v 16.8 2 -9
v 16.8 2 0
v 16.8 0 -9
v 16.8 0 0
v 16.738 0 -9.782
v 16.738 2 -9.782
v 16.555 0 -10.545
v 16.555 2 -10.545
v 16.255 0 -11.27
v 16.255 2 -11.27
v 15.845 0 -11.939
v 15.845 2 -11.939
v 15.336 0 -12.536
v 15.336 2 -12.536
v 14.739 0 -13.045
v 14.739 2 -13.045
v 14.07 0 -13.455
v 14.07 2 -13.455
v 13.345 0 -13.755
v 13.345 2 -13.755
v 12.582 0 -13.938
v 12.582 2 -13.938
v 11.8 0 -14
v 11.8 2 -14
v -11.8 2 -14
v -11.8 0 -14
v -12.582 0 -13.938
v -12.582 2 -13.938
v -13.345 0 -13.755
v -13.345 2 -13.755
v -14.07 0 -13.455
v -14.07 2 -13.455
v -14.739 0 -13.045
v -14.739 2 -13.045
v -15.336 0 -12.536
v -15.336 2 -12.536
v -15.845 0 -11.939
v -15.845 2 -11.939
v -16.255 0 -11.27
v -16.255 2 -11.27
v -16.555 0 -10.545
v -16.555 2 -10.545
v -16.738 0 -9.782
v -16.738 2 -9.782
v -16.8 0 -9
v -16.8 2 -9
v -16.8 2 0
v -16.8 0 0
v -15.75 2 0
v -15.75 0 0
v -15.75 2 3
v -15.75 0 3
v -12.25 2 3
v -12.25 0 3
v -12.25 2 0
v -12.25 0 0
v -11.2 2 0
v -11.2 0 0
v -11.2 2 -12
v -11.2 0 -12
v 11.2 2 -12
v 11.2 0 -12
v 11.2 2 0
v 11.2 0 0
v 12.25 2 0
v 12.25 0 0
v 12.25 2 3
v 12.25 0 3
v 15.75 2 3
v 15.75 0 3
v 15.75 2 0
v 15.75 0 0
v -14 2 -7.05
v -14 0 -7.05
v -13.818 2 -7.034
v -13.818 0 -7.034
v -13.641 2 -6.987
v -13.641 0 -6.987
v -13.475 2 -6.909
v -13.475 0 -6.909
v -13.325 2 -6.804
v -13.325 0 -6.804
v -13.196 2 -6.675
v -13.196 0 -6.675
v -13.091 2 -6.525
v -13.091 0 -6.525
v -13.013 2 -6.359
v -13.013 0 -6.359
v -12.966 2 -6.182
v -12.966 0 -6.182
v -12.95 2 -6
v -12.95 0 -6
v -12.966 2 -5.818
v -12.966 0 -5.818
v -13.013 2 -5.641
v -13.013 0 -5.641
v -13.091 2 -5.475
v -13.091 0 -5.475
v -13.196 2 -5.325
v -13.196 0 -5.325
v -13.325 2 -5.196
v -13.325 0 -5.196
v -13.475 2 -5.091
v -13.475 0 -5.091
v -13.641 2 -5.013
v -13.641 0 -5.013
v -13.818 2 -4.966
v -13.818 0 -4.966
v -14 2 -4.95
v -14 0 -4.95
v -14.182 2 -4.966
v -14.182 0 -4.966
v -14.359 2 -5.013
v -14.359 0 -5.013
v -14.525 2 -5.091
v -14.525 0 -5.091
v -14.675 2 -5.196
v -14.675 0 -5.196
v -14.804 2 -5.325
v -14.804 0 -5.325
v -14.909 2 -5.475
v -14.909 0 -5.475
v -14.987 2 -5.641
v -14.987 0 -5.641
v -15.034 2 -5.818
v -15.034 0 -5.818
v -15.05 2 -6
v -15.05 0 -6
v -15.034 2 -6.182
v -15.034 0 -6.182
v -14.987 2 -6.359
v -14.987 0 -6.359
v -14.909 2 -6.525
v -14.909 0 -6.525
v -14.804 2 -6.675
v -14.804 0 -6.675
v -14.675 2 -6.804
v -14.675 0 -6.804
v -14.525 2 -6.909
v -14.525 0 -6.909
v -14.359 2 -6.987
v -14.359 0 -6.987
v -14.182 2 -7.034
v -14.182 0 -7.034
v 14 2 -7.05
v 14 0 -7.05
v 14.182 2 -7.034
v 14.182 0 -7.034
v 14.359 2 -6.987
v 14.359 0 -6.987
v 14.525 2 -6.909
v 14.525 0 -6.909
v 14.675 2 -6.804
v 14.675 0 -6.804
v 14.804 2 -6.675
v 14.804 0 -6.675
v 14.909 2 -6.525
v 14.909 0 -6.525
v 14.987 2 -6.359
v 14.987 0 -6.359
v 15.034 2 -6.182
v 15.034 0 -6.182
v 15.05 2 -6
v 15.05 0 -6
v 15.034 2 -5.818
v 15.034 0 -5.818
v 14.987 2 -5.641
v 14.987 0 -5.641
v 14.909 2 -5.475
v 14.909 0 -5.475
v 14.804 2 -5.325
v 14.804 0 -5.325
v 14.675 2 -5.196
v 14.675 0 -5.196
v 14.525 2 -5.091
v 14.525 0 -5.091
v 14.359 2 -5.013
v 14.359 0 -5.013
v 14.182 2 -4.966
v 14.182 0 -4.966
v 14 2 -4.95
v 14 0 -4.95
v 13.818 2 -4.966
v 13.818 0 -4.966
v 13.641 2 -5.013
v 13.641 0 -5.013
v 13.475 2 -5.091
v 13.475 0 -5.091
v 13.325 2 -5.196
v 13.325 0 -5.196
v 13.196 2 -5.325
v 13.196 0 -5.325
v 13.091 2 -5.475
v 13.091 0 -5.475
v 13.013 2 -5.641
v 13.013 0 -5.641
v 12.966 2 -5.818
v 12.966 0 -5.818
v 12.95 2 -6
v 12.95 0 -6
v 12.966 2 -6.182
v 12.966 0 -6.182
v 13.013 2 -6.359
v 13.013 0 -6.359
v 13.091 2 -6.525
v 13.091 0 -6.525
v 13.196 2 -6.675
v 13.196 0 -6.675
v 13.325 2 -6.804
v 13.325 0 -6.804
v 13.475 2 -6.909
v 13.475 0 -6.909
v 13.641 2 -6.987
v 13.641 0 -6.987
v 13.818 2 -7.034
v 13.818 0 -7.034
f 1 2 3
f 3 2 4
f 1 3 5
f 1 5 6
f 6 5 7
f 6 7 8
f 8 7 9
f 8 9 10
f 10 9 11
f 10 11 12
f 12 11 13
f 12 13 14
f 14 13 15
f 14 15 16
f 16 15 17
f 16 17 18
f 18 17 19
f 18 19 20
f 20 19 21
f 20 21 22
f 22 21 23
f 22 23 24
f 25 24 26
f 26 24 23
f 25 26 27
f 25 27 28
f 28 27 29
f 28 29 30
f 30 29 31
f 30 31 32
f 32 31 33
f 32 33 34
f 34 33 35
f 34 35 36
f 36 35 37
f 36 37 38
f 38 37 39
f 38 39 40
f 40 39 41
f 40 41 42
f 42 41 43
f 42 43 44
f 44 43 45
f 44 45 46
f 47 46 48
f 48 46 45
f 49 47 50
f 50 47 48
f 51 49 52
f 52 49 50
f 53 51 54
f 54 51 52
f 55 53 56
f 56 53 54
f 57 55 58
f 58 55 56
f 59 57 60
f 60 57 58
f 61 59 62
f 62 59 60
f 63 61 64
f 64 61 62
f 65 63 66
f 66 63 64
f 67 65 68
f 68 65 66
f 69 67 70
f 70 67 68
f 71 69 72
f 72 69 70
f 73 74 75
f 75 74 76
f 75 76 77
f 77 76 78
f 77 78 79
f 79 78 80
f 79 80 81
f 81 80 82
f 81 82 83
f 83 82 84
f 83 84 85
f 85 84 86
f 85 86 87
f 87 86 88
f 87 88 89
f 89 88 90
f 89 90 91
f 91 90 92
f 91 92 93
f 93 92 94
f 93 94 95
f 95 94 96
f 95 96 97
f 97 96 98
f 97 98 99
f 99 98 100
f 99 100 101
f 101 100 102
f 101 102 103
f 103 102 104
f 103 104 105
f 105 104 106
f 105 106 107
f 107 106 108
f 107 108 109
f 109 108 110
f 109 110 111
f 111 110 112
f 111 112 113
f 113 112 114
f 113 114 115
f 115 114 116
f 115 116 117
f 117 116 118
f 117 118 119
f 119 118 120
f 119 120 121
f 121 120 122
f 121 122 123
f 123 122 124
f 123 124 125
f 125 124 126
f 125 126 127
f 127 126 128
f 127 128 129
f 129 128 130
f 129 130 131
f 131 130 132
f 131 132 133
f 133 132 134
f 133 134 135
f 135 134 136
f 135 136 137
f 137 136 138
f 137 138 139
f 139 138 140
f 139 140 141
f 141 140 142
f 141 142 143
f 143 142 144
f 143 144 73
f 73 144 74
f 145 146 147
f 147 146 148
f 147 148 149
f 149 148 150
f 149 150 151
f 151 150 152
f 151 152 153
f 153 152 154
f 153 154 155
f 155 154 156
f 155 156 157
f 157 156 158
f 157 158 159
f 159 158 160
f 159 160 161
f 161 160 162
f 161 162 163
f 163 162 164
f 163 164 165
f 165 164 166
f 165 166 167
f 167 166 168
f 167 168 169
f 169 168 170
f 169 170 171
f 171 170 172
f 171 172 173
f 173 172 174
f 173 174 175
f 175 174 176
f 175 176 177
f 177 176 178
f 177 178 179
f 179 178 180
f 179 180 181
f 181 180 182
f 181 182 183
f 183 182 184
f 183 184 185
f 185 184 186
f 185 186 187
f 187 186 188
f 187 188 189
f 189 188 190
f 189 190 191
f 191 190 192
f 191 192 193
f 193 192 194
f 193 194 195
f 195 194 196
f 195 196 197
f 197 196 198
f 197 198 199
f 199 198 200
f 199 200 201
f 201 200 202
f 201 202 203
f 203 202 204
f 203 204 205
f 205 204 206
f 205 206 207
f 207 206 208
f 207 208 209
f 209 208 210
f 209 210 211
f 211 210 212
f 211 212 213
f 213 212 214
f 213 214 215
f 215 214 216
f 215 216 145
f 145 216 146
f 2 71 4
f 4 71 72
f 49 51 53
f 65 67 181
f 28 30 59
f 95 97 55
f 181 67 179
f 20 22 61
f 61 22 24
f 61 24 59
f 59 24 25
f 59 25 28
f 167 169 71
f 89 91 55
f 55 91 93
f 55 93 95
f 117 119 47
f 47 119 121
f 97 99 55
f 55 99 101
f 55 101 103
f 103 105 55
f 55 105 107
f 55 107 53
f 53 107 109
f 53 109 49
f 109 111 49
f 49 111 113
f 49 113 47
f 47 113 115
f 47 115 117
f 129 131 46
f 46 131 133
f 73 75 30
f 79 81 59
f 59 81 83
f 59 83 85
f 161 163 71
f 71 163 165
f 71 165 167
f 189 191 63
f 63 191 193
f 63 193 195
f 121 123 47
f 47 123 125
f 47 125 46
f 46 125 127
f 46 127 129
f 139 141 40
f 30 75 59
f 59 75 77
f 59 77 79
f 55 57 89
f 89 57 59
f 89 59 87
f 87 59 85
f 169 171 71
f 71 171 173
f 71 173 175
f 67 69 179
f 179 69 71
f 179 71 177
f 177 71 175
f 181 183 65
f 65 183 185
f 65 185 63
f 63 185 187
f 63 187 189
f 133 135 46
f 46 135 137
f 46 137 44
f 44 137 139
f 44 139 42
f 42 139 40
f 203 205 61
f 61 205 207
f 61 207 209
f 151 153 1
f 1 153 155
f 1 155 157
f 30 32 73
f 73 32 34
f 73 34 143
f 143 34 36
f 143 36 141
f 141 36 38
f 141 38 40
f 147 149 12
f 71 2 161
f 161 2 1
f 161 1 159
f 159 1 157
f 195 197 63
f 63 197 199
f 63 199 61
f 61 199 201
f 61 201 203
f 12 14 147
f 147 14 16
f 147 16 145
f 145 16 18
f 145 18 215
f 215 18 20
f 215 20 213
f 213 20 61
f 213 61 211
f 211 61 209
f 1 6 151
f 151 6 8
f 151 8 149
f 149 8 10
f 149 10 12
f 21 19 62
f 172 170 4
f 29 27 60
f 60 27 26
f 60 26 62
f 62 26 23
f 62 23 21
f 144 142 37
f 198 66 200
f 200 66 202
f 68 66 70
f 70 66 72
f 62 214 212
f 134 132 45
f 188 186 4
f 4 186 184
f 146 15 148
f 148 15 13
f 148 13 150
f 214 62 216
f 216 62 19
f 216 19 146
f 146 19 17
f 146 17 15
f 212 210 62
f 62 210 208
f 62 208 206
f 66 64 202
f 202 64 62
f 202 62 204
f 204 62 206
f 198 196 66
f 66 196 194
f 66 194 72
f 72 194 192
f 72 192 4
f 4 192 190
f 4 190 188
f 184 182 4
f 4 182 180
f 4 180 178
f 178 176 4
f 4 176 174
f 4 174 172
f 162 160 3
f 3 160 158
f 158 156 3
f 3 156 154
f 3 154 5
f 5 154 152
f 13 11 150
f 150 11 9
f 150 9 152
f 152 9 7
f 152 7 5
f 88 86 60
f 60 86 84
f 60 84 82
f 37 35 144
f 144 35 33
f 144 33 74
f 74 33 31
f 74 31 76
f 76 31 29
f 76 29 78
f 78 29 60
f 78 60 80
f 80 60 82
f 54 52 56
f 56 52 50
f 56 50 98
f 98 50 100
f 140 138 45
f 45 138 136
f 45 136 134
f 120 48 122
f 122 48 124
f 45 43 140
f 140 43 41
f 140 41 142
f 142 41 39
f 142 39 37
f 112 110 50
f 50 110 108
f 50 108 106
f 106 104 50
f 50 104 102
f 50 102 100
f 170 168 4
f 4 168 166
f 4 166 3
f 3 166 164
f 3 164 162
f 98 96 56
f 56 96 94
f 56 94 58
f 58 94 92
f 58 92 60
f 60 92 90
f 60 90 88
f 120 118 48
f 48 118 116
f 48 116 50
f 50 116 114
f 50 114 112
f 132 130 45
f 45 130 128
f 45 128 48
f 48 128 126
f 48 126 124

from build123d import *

# Parameters (mm, degrees)
CROQUIS1_R              = 1.05
SALIENTE_EXTRUIR1_DEPTH = 2


with BuildPart() as part:
    # Croquis1 → Saliente-Extruir1 (new body)
    with BuildSketch(Plane(origin=(0, 0, 0), x_dir=(1, 0, 0), z_dir=(0, 1, 0))):
        with BuildLine():
            Line((-11.2, 0), (-11.2, 12))
            Line((-11.2, 12), (11.2, 12))
            Line((11.2, 12), (11.2, 0))
            Line((11.2, 0), (12.25, 0))
            Line((12.25, 0), (12.25, -3))
            Line((12.25, -3), (15.75, -3))
            Line((15.75, -3), (15.75, 0))
            Line((15.75, 0), (16.8, 0))
            Line((16.8, 0), (16.8, 9))
            ThreePointArc((16.8, 9), (15.335533906, 12.535533906), (11.8, 14))
            Line((11.8, 14), (-11.8, 14))
            ThreePointArc((-11.8, 14), (-15.335533906, 12.535533906), (-16.8, 9))
            Line((-16.8, 9), (-16.8, 0))
            Line((-16.8, 0), (-15.75, 0))
            Line((-15.75, 0), (-15.75, -3))
            Line((-15.75, -3), (-12.25, -3))
            Line((-12.25, -3), (-12.25, 0))
            Line((-12.25, 0), (-11.2, 0))
        make_face()
        with Locations(Location((-14, 6, 0), (0, 0, 270))):
            Circle(CROQUIS1_R, mode=Mode.SUBTRACT)
        with Locations(Location((14, 6, 0), (0, 0, 270))):
            Circle(CROQUIS1_R, mode=Mode.SUBTRACT)
    extrude(amount=SALIENTE_EXTRUIR1_DEPTH)


solid = part.part
